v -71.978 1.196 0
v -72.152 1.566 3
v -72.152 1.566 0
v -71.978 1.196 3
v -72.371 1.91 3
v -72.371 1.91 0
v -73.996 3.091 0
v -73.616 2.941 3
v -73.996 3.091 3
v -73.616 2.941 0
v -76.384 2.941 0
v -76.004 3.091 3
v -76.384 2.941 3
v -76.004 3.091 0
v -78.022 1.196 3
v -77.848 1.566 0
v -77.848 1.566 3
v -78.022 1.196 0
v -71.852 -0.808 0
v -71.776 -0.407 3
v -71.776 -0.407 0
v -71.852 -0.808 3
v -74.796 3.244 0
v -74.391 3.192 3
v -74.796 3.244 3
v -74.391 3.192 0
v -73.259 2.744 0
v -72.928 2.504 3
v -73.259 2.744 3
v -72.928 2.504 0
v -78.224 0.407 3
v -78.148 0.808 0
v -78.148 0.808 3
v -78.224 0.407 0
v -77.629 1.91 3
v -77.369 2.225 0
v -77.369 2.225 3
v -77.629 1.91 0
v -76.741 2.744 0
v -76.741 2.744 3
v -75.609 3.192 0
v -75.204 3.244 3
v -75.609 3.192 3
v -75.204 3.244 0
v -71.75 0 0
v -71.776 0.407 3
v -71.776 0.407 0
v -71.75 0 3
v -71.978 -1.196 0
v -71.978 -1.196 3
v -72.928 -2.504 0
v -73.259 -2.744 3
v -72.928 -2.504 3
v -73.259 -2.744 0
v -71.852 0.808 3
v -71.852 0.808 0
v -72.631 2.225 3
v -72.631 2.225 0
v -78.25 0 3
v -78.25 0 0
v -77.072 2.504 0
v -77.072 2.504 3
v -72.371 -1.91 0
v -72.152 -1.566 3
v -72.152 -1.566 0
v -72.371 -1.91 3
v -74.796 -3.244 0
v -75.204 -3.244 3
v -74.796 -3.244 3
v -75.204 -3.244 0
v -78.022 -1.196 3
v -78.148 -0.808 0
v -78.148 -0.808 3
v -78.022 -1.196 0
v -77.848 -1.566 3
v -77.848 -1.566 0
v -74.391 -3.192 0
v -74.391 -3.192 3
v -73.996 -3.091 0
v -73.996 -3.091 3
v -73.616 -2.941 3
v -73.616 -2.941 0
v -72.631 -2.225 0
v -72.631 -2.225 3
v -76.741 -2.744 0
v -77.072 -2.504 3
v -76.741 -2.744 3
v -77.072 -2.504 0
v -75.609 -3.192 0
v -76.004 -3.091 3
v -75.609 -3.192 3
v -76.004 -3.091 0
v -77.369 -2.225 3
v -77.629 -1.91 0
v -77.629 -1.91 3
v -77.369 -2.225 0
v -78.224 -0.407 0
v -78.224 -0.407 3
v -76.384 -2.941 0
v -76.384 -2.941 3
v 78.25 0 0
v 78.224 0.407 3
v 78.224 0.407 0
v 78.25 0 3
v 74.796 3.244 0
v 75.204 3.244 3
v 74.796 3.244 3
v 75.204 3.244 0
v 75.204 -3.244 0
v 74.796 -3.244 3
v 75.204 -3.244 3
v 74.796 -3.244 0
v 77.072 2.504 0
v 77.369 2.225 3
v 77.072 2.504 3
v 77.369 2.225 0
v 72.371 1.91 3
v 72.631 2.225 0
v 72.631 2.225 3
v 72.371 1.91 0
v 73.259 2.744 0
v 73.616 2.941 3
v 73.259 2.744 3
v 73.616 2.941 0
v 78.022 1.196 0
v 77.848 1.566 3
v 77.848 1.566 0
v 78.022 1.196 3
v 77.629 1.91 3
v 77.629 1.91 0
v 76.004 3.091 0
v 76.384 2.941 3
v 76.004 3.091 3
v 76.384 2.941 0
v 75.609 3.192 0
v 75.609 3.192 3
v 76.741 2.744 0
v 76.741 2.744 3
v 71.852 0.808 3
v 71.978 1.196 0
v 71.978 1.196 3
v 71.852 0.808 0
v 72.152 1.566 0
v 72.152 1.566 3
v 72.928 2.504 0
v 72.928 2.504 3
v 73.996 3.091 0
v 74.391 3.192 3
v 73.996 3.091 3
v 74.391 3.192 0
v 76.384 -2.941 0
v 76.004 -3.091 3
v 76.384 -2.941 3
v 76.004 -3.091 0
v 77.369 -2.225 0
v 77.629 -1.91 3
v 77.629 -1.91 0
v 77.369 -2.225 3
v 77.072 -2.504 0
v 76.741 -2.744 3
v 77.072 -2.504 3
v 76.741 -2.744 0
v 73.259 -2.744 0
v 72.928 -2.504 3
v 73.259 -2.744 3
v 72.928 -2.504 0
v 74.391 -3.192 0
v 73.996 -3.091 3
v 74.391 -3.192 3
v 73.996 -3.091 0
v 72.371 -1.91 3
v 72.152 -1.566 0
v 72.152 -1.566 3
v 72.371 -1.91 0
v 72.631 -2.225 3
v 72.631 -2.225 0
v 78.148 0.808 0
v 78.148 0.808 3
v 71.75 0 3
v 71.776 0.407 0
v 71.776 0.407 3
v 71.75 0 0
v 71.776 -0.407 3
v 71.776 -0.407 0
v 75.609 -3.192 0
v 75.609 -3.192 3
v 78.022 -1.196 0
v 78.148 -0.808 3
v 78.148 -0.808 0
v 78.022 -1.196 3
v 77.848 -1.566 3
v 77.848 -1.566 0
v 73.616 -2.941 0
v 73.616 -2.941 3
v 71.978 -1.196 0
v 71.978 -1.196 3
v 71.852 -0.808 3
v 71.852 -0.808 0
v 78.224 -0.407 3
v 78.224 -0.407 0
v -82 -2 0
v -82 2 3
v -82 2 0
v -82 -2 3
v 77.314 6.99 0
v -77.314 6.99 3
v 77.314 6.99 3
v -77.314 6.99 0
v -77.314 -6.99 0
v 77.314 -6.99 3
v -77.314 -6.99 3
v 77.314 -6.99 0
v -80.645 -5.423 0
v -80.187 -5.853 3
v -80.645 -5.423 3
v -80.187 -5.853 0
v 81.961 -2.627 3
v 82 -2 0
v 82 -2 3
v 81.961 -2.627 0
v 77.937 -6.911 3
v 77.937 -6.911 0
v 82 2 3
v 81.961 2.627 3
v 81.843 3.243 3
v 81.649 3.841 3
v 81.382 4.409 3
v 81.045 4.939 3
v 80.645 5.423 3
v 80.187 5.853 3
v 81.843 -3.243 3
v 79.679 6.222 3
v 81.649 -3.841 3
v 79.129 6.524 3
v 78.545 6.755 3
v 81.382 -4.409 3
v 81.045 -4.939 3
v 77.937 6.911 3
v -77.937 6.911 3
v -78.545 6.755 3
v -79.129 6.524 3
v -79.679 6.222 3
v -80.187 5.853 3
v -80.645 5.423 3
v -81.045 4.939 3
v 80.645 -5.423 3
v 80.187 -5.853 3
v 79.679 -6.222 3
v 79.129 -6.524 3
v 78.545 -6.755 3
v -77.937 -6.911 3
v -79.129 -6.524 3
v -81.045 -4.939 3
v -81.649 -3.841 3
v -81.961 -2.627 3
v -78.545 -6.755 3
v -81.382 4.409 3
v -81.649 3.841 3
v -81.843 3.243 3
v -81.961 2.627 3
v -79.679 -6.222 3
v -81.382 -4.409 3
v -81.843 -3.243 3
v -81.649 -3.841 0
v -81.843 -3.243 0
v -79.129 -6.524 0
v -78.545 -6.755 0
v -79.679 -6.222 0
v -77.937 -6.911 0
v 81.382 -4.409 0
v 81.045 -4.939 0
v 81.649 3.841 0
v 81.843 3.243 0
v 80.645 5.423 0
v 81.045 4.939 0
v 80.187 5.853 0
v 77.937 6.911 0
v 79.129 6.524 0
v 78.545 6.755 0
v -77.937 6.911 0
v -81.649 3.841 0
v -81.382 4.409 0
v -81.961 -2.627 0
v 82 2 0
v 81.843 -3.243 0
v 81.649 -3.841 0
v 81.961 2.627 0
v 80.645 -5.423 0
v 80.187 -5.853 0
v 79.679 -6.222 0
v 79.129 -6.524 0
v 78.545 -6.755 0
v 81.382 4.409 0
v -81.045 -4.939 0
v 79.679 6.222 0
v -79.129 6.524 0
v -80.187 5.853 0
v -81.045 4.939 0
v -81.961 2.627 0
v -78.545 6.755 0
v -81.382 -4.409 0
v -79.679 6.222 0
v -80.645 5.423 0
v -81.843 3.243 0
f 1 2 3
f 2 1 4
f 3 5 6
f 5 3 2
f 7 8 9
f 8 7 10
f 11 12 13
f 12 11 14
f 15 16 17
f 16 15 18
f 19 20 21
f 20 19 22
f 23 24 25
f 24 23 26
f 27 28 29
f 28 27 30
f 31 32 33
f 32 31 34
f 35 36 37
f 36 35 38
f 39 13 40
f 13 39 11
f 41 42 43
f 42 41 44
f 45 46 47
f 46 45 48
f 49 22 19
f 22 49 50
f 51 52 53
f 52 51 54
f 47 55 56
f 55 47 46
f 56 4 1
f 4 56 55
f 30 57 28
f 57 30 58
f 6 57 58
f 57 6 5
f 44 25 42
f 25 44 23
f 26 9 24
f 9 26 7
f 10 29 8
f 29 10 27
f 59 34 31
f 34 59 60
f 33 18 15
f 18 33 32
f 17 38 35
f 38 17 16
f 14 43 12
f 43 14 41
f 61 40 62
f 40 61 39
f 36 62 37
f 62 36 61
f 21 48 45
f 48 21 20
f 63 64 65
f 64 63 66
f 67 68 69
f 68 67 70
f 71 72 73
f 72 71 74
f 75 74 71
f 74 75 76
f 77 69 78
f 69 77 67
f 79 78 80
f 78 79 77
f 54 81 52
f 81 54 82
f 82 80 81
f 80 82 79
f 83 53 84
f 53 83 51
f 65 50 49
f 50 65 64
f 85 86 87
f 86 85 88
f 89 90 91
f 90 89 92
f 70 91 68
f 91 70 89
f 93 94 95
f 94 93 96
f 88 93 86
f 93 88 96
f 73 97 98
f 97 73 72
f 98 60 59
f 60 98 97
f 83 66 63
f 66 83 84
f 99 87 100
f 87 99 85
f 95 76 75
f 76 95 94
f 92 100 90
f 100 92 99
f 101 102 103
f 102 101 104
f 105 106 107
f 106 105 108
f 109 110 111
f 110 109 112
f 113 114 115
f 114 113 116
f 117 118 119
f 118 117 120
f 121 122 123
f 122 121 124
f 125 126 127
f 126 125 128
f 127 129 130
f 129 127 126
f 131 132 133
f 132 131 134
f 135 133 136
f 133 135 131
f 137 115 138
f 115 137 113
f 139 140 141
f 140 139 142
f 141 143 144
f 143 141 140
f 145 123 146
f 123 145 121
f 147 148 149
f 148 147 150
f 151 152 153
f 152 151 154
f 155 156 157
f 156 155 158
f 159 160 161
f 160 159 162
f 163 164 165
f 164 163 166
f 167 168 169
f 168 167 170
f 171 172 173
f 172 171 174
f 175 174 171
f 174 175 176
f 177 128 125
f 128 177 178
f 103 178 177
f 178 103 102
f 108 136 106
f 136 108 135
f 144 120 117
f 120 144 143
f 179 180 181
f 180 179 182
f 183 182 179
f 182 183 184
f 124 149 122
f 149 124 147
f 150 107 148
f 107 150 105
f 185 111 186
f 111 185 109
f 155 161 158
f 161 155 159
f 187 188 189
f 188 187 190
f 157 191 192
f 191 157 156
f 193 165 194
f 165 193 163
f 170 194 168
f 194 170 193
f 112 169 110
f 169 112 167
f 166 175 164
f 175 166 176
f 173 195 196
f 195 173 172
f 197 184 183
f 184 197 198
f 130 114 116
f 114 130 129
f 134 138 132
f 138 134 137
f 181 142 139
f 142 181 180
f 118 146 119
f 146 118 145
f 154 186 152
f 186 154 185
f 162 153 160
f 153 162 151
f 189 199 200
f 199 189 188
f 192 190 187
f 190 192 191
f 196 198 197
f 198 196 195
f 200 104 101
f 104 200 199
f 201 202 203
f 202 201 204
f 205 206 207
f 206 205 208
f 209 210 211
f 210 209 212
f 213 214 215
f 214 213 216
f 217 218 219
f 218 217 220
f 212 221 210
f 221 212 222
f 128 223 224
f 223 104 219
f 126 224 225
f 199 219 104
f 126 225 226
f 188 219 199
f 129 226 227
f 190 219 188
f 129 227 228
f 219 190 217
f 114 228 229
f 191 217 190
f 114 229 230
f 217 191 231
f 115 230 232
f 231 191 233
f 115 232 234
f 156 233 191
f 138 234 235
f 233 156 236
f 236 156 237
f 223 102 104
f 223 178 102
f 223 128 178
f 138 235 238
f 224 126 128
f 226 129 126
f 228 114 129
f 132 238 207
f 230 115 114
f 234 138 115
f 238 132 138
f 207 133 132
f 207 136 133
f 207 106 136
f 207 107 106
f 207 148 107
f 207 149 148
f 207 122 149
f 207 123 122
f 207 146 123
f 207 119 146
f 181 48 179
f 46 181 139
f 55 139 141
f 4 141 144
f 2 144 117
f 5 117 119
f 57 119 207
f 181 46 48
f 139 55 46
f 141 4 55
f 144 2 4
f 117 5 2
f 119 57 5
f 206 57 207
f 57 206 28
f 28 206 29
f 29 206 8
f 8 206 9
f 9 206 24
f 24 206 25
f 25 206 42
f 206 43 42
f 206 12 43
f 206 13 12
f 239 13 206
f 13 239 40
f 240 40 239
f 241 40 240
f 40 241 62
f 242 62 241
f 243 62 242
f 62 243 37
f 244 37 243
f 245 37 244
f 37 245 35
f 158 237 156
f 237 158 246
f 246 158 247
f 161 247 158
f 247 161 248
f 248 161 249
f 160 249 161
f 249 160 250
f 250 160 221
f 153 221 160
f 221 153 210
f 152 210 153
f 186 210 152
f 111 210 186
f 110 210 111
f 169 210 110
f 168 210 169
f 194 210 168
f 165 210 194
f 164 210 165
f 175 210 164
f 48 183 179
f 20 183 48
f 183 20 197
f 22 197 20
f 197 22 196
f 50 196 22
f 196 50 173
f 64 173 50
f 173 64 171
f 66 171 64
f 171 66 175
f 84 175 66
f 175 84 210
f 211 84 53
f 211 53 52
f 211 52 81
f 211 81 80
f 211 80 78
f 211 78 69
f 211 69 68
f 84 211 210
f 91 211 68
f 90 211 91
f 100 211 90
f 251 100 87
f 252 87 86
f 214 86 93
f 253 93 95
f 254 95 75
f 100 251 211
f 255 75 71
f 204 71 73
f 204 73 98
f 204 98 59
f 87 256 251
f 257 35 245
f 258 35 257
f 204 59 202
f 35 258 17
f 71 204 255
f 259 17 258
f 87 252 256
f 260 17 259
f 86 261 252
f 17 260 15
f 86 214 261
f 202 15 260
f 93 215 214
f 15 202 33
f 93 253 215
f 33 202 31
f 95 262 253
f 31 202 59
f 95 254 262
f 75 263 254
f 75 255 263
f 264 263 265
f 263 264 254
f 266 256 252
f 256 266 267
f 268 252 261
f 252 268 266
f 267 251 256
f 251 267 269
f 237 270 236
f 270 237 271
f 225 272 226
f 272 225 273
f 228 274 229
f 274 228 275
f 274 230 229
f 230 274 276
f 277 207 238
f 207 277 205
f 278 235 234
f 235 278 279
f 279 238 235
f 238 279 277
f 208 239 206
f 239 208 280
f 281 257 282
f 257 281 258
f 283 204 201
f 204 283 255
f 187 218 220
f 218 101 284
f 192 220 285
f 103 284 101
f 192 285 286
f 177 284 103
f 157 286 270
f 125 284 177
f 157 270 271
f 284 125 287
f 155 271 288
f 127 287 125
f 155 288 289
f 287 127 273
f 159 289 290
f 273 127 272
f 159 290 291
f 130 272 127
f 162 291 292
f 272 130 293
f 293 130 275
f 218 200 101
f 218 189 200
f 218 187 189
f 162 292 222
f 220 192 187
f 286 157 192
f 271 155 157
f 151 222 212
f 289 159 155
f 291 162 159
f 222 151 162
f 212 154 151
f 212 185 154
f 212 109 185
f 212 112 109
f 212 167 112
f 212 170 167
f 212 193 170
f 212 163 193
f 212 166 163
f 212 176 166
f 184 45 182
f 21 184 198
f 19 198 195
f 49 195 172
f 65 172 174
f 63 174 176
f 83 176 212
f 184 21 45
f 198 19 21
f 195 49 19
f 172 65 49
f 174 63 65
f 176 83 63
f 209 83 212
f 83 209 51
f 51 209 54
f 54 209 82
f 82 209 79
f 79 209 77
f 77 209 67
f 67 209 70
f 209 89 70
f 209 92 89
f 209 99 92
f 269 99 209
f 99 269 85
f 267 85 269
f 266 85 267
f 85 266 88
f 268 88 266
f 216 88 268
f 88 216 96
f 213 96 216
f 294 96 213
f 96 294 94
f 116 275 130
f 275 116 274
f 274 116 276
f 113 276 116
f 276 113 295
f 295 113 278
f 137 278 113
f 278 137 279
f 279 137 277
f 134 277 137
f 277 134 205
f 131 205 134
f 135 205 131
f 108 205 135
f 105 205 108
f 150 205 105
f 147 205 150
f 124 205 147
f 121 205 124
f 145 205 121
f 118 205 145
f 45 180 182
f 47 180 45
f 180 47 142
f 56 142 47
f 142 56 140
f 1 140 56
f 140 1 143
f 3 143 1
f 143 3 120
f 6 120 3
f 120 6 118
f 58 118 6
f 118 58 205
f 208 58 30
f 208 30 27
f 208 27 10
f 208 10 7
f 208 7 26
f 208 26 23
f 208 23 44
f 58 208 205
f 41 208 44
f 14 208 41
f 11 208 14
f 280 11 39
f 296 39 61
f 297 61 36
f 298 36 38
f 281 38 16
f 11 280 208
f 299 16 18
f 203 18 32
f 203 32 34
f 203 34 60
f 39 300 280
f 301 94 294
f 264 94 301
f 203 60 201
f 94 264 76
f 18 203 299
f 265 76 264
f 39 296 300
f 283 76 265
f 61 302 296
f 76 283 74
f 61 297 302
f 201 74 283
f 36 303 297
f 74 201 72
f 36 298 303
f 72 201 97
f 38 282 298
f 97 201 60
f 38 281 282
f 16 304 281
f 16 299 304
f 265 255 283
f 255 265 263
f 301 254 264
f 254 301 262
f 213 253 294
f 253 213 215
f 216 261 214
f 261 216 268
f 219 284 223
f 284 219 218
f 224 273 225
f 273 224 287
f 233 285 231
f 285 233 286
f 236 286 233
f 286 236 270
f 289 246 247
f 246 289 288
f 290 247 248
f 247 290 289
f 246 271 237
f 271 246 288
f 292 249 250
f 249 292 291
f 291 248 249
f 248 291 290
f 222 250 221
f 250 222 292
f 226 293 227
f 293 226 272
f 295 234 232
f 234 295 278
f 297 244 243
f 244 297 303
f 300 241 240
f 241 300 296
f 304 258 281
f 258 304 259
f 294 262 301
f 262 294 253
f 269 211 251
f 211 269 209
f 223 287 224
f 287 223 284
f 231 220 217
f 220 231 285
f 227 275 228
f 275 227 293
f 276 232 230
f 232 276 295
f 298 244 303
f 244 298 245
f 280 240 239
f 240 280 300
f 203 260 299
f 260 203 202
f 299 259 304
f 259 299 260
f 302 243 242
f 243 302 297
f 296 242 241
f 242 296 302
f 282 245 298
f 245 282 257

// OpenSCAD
$fn = 50;


difference() {
	union() {
		hull() {
			translate(v = [-77.0000000000, 2.0000000000, 0]) {
				cylinder(h = 3, r = 5);
			}
			translate(v = [77.0000000000, 2.0000000000, 0]) {
				cylinder(h = 3, r = 5);
			}
			translate(v = [-77.0000000000, -2.0000000000, 0]) {
				cylinder(h = 3, r = 5);
			}
			translate(v = [77.0000000000, -2.0000000000, 0]) {
				cylinder(h = 3, r = 5);
			}
		}
	}
	union() {
		translate(v = [-75.0000000000, 0.0000000000, -100.0000000000]) {
			cylinder(h = 200, r = 3.2500000000);
		}
		translate(v = [-75.0000000000, 0.0000000000, -100.0000000000]) {
			cylinder(h = 200, r = 3.2500000000);
		}
		translate(v = [75.0000000000, 0.0000000000, -100.0000000000]) {
			cylinder(h = 200, r = 3.2500000000);
		}
		translate(v = [75.0000000000, 0.0000000000, -100.0000000000]) {
			cylinder(h = 200, r = 3.2500000000);
		}
	}
}
